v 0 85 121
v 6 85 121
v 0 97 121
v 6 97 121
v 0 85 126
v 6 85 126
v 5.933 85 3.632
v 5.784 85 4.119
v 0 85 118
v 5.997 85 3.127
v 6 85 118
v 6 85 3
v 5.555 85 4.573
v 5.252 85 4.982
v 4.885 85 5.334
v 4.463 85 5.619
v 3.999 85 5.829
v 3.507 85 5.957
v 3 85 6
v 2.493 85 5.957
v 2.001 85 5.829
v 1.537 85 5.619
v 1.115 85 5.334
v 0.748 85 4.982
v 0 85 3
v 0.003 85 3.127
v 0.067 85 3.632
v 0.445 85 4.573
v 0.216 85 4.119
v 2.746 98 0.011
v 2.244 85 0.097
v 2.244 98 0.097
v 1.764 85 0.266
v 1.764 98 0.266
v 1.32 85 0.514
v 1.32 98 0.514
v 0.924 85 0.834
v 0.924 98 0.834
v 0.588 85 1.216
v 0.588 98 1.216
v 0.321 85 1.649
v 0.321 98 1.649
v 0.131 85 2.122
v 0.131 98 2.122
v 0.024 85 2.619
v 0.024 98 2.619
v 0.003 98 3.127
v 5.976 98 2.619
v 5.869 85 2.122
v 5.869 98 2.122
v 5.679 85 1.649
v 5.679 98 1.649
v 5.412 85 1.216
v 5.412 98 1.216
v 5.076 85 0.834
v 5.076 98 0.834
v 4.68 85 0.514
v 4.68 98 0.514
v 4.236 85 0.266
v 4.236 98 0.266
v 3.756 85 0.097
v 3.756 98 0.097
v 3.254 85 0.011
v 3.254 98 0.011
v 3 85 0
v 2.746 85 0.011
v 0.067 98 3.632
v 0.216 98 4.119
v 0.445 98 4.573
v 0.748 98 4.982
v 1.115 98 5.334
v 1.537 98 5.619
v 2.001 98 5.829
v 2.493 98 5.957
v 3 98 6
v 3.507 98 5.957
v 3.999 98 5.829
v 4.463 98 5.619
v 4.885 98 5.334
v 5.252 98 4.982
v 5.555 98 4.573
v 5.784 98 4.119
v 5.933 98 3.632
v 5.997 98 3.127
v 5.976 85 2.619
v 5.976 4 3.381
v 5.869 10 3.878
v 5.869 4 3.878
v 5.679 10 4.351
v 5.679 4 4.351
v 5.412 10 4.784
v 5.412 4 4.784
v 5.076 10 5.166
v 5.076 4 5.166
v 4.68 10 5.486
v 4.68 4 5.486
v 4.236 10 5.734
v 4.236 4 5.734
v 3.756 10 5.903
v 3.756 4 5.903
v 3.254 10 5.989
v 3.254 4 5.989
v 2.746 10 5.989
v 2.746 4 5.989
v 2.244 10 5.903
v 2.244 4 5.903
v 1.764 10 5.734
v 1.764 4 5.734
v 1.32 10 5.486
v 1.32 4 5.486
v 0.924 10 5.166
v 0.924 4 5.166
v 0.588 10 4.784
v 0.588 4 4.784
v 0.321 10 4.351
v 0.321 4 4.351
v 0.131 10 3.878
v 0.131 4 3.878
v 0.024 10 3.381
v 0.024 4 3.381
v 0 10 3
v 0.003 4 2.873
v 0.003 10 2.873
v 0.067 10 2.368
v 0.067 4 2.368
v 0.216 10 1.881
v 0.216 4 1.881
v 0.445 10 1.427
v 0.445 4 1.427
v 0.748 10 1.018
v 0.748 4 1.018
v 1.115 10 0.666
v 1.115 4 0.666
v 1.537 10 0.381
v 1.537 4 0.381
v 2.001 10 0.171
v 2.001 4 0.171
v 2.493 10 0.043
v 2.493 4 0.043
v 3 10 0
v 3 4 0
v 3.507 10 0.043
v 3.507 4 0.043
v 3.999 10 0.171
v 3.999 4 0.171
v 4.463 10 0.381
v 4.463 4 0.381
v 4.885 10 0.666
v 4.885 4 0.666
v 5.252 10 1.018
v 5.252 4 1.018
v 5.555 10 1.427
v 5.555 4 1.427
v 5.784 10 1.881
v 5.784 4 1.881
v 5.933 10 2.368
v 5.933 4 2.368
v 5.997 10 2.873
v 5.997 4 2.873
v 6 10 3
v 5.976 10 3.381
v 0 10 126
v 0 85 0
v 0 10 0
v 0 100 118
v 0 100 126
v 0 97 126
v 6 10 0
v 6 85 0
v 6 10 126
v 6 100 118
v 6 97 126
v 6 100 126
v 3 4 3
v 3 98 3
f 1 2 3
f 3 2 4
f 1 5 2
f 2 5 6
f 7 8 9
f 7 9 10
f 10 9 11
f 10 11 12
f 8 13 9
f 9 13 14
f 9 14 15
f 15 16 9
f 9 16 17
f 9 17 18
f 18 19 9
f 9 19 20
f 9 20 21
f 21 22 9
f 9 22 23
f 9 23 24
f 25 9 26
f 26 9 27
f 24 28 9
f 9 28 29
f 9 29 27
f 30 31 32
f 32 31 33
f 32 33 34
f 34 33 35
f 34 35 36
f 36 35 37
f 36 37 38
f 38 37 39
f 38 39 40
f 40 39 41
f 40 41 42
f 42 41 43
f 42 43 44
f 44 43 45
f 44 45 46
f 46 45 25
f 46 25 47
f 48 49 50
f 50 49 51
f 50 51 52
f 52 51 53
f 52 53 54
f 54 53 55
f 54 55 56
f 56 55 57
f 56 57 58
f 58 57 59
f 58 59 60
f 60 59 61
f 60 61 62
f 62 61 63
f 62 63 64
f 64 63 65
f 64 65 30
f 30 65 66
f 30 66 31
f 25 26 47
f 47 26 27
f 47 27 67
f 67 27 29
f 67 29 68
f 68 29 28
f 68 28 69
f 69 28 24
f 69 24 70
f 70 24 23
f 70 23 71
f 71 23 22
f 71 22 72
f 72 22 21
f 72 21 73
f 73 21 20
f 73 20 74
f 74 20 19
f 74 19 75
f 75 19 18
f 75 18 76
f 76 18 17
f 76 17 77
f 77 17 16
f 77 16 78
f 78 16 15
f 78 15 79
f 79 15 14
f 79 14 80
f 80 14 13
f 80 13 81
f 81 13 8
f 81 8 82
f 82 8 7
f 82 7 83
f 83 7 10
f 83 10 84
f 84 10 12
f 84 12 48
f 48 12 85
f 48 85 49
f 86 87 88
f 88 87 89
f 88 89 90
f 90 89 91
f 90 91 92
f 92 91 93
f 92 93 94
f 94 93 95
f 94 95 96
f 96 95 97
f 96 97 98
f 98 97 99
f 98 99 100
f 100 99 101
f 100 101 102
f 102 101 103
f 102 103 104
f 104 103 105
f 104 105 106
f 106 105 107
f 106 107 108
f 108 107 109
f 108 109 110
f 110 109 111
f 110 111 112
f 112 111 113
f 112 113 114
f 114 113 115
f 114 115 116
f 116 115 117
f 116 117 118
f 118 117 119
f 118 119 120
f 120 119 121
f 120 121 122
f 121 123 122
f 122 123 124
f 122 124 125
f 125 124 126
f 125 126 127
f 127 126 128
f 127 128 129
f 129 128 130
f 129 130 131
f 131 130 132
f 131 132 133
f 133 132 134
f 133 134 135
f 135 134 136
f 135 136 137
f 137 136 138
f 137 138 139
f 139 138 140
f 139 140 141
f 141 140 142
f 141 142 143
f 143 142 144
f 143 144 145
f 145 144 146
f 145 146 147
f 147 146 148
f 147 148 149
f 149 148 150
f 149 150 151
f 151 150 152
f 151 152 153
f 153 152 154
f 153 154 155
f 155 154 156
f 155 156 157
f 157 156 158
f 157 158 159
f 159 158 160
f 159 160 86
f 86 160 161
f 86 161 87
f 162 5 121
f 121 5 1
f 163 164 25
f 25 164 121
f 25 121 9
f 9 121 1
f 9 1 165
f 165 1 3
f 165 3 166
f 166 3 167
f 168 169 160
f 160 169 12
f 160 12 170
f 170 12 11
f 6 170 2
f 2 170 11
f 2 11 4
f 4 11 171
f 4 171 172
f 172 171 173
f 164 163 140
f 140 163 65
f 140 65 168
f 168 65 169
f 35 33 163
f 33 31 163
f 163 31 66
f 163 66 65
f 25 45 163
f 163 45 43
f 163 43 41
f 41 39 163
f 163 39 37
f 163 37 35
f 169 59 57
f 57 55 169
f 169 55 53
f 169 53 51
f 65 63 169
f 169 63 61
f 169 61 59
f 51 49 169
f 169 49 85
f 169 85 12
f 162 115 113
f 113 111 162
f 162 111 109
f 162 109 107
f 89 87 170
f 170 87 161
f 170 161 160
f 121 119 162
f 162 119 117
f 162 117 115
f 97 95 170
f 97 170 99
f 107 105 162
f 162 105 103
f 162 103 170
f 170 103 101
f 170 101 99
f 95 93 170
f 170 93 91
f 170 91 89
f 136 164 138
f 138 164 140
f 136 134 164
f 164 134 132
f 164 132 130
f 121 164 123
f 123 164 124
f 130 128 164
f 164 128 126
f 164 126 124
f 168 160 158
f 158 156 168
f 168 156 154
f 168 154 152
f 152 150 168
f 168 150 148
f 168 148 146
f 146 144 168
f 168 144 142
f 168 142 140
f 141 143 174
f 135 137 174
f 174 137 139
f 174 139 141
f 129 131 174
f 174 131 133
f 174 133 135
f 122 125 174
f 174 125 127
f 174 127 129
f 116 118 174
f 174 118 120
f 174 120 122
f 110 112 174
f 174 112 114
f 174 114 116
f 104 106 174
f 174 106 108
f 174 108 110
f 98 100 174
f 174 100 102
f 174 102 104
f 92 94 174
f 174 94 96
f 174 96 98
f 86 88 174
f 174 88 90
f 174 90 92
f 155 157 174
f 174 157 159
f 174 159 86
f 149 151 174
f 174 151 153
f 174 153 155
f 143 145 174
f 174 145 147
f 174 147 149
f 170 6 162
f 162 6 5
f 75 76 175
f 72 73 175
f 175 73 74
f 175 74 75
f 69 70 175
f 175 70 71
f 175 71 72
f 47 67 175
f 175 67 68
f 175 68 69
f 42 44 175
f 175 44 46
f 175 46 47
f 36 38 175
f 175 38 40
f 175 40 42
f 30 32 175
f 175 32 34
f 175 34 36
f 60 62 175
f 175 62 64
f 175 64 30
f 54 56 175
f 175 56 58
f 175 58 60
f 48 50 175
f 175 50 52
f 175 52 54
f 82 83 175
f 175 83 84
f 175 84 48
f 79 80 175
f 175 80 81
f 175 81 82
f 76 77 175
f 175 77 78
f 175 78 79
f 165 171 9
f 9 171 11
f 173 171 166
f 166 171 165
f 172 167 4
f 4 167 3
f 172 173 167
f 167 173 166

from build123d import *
from build123d.topology import SkipClean

# Parameters (mm, degrees)
SKICA1_W                 = 6
SKICA1_H                 = 100
P_IDAT_VYSUNUT_M1_DEPTH  = 6
SKICA4_OUTSIDE_W         = 28.072
SKICA4_OUTSIDE_H         = 28.072
SKICA4_OUTSIDE_R         = 3
ODEBRAT_VYSUNUT_M3_DEPTH = 15
SKICA6_OUTSIDE_W         = 28.072
SKICA6_OUTSIDE_H         = 28.072
SKICA6_OUTSIDE_R         = 3
ODEBRAT_VYSUNUT_M4_DEPTH = 10
SKICA7_R                 = 3
ODEBRAT_VYSUNUT_M5_DEPTH = 5
SKICA10_R                = 3
P_IDAT_VYSUNUT_M2_DEPTH  = 1
SKICA11_W                = 6
SKICA11_H                = 75
P_IDAT_VYSUNUT_M3_DEPTH  = 120
SKICA14_R                = 3
ODEBRAT_VYSUNUT_M8_DEPTH = 2
SKICA19_W                = 6
SKICA19_H                = 3
P_IDAT_VYSUNUT_M6_DEPTH  = 15
SKICA20_W                = 6
SKICA20_H                = 3
P_IDAT_VYSUNUT_M8_DEPTH  = 5


with BuildPart() as part:
    # Skica1 → Přidat vysunutím1 (new body)
    with BuildSketch(Plane.XY):
        with Locations((3, 50)):
            Rectangle(SKICA1_W, SKICA1_H)
    extrude(amount=P_IDAT_VYSUNUT_M1_DEPTH)

    # Skica4 outside → Odebrat vysunutím3 (cut)
    with BuildSketch(Plane(origin=(0, 100, 0), x_dir=(1, 0, 0), z_dir=(0, 1, 0))):
        with Locations((3, -3)):
            Rectangle(SKICA4_OUTSIDE_W, SKICA4_OUTSIDE_H)
        with Locations(Location((3, -3, 0), (0, 0, 270))):
            Circle(SKICA4_OUTSIDE_R, mode=Mode.SUBTRACT)
    extrude(amount=-ODEBRAT_VYSUNUT_M3_DEPTH, mode=Mode.SUBTRACT)

    # Skica6 outside → Odebrat vysunutím4 (cut)
    with BuildSketch(Plane.XZ):
        with Locations((3, 3)):
            Rectangle(SKICA6_OUTSIDE_W, SKICA6_OUTSIDE_H)
        with Locations(Location((3, 3, 0), (0, 0, 90))):
            Circle(SKICA6_OUTSIDE_R, mode=Mode.SUBTRACT)
    extrude(amount=-ODEBRAT_VYSUNUT_M4_DEPTH, mode=Mode.SUBTRACT)

    # Skica7 → Odebrat vysunutím5 (cut)
    with BuildSketch(Plane.XZ):
        with Locations(Location((3, 3, 0), (0, 0, 270))):
            Circle(SKICA7_R)
    extrude(amount=-ODEBRAT_VYSUNUT_M5_DEPTH, mode=Mode.SUBTRACT)

    # Skica10 → Přidat vysunutím2 (add)
    with SkipClean():  # the faces are left unmerged after this step: merging them gives an invalid solid
        with BuildSketch(Plane.XZ.offset(-5)):
            with Locations(Location((3, 3, 0), (0, 0, 270))):
                Circle(SKICA10_R)
        extrude(amount=P_IDAT_VYSUNUT_M2_DEPTH)

    # Skica11 → Přidat vysunutím3 (add)
    with SkipClean():  # the faces are left unmerged after this step: merging them gives an invalid solid
        with BuildSketch(Plane.XY.offset(6)):
            with Locations((3, 47.5)):
                Rectangle(SKICA11_W, SKICA11_H)
        extrude(amount=P_IDAT_VYSUNUT_M3_DEPTH)

    # Skica14 → Odebrat vysunutím8 (cut)
    with SkipClean():  # the faces are left unmerged after this step: merging them gives an invalid solid
        with BuildSketch(Plane(origin=(0, 100, 0), x_dir=(1, 0, 0), z_dir=(0, 1, 0))):
            with Locations(Location((3, -3, 0), (0, 0, 270))):
                Circle(SKICA14_R)
        extrude(amount=-ODEBRAT_VYSUNUT_M8_DEPTH, mode=Mode.SUBTRACT)

    # Skica19 → Přidat vysunutím6 (add)
    with SkipClean():  # the faces are left unmerged after this step: merging them gives an invalid solid
        with BuildSketch(Plane(origin=(0, 85, 0), x_dir=(1, 0, 0), z_dir=(0, 1, 0))):
            with Locations((3, -119.5)):
                Rectangle(SKICA19_W, SKICA19_H)
        extrude(amount=P_IDAT_VYSUNUT_M6_DEPTH)

    # Skica20 → Přidat vysunutím8 (add)
    with SkipClean():  # the faces are left unmerged after this step: merging them gives an invalid solid
        with BuildSketch(Plane.XY.offset(121)):
            with Locations((3, 98.5)):
                Rectangle(SKICA20_W, SKICA20_H)
        extrude(amount=P_IDAT_VYSUNUT_M8_DEPTH)


solid = part.part
